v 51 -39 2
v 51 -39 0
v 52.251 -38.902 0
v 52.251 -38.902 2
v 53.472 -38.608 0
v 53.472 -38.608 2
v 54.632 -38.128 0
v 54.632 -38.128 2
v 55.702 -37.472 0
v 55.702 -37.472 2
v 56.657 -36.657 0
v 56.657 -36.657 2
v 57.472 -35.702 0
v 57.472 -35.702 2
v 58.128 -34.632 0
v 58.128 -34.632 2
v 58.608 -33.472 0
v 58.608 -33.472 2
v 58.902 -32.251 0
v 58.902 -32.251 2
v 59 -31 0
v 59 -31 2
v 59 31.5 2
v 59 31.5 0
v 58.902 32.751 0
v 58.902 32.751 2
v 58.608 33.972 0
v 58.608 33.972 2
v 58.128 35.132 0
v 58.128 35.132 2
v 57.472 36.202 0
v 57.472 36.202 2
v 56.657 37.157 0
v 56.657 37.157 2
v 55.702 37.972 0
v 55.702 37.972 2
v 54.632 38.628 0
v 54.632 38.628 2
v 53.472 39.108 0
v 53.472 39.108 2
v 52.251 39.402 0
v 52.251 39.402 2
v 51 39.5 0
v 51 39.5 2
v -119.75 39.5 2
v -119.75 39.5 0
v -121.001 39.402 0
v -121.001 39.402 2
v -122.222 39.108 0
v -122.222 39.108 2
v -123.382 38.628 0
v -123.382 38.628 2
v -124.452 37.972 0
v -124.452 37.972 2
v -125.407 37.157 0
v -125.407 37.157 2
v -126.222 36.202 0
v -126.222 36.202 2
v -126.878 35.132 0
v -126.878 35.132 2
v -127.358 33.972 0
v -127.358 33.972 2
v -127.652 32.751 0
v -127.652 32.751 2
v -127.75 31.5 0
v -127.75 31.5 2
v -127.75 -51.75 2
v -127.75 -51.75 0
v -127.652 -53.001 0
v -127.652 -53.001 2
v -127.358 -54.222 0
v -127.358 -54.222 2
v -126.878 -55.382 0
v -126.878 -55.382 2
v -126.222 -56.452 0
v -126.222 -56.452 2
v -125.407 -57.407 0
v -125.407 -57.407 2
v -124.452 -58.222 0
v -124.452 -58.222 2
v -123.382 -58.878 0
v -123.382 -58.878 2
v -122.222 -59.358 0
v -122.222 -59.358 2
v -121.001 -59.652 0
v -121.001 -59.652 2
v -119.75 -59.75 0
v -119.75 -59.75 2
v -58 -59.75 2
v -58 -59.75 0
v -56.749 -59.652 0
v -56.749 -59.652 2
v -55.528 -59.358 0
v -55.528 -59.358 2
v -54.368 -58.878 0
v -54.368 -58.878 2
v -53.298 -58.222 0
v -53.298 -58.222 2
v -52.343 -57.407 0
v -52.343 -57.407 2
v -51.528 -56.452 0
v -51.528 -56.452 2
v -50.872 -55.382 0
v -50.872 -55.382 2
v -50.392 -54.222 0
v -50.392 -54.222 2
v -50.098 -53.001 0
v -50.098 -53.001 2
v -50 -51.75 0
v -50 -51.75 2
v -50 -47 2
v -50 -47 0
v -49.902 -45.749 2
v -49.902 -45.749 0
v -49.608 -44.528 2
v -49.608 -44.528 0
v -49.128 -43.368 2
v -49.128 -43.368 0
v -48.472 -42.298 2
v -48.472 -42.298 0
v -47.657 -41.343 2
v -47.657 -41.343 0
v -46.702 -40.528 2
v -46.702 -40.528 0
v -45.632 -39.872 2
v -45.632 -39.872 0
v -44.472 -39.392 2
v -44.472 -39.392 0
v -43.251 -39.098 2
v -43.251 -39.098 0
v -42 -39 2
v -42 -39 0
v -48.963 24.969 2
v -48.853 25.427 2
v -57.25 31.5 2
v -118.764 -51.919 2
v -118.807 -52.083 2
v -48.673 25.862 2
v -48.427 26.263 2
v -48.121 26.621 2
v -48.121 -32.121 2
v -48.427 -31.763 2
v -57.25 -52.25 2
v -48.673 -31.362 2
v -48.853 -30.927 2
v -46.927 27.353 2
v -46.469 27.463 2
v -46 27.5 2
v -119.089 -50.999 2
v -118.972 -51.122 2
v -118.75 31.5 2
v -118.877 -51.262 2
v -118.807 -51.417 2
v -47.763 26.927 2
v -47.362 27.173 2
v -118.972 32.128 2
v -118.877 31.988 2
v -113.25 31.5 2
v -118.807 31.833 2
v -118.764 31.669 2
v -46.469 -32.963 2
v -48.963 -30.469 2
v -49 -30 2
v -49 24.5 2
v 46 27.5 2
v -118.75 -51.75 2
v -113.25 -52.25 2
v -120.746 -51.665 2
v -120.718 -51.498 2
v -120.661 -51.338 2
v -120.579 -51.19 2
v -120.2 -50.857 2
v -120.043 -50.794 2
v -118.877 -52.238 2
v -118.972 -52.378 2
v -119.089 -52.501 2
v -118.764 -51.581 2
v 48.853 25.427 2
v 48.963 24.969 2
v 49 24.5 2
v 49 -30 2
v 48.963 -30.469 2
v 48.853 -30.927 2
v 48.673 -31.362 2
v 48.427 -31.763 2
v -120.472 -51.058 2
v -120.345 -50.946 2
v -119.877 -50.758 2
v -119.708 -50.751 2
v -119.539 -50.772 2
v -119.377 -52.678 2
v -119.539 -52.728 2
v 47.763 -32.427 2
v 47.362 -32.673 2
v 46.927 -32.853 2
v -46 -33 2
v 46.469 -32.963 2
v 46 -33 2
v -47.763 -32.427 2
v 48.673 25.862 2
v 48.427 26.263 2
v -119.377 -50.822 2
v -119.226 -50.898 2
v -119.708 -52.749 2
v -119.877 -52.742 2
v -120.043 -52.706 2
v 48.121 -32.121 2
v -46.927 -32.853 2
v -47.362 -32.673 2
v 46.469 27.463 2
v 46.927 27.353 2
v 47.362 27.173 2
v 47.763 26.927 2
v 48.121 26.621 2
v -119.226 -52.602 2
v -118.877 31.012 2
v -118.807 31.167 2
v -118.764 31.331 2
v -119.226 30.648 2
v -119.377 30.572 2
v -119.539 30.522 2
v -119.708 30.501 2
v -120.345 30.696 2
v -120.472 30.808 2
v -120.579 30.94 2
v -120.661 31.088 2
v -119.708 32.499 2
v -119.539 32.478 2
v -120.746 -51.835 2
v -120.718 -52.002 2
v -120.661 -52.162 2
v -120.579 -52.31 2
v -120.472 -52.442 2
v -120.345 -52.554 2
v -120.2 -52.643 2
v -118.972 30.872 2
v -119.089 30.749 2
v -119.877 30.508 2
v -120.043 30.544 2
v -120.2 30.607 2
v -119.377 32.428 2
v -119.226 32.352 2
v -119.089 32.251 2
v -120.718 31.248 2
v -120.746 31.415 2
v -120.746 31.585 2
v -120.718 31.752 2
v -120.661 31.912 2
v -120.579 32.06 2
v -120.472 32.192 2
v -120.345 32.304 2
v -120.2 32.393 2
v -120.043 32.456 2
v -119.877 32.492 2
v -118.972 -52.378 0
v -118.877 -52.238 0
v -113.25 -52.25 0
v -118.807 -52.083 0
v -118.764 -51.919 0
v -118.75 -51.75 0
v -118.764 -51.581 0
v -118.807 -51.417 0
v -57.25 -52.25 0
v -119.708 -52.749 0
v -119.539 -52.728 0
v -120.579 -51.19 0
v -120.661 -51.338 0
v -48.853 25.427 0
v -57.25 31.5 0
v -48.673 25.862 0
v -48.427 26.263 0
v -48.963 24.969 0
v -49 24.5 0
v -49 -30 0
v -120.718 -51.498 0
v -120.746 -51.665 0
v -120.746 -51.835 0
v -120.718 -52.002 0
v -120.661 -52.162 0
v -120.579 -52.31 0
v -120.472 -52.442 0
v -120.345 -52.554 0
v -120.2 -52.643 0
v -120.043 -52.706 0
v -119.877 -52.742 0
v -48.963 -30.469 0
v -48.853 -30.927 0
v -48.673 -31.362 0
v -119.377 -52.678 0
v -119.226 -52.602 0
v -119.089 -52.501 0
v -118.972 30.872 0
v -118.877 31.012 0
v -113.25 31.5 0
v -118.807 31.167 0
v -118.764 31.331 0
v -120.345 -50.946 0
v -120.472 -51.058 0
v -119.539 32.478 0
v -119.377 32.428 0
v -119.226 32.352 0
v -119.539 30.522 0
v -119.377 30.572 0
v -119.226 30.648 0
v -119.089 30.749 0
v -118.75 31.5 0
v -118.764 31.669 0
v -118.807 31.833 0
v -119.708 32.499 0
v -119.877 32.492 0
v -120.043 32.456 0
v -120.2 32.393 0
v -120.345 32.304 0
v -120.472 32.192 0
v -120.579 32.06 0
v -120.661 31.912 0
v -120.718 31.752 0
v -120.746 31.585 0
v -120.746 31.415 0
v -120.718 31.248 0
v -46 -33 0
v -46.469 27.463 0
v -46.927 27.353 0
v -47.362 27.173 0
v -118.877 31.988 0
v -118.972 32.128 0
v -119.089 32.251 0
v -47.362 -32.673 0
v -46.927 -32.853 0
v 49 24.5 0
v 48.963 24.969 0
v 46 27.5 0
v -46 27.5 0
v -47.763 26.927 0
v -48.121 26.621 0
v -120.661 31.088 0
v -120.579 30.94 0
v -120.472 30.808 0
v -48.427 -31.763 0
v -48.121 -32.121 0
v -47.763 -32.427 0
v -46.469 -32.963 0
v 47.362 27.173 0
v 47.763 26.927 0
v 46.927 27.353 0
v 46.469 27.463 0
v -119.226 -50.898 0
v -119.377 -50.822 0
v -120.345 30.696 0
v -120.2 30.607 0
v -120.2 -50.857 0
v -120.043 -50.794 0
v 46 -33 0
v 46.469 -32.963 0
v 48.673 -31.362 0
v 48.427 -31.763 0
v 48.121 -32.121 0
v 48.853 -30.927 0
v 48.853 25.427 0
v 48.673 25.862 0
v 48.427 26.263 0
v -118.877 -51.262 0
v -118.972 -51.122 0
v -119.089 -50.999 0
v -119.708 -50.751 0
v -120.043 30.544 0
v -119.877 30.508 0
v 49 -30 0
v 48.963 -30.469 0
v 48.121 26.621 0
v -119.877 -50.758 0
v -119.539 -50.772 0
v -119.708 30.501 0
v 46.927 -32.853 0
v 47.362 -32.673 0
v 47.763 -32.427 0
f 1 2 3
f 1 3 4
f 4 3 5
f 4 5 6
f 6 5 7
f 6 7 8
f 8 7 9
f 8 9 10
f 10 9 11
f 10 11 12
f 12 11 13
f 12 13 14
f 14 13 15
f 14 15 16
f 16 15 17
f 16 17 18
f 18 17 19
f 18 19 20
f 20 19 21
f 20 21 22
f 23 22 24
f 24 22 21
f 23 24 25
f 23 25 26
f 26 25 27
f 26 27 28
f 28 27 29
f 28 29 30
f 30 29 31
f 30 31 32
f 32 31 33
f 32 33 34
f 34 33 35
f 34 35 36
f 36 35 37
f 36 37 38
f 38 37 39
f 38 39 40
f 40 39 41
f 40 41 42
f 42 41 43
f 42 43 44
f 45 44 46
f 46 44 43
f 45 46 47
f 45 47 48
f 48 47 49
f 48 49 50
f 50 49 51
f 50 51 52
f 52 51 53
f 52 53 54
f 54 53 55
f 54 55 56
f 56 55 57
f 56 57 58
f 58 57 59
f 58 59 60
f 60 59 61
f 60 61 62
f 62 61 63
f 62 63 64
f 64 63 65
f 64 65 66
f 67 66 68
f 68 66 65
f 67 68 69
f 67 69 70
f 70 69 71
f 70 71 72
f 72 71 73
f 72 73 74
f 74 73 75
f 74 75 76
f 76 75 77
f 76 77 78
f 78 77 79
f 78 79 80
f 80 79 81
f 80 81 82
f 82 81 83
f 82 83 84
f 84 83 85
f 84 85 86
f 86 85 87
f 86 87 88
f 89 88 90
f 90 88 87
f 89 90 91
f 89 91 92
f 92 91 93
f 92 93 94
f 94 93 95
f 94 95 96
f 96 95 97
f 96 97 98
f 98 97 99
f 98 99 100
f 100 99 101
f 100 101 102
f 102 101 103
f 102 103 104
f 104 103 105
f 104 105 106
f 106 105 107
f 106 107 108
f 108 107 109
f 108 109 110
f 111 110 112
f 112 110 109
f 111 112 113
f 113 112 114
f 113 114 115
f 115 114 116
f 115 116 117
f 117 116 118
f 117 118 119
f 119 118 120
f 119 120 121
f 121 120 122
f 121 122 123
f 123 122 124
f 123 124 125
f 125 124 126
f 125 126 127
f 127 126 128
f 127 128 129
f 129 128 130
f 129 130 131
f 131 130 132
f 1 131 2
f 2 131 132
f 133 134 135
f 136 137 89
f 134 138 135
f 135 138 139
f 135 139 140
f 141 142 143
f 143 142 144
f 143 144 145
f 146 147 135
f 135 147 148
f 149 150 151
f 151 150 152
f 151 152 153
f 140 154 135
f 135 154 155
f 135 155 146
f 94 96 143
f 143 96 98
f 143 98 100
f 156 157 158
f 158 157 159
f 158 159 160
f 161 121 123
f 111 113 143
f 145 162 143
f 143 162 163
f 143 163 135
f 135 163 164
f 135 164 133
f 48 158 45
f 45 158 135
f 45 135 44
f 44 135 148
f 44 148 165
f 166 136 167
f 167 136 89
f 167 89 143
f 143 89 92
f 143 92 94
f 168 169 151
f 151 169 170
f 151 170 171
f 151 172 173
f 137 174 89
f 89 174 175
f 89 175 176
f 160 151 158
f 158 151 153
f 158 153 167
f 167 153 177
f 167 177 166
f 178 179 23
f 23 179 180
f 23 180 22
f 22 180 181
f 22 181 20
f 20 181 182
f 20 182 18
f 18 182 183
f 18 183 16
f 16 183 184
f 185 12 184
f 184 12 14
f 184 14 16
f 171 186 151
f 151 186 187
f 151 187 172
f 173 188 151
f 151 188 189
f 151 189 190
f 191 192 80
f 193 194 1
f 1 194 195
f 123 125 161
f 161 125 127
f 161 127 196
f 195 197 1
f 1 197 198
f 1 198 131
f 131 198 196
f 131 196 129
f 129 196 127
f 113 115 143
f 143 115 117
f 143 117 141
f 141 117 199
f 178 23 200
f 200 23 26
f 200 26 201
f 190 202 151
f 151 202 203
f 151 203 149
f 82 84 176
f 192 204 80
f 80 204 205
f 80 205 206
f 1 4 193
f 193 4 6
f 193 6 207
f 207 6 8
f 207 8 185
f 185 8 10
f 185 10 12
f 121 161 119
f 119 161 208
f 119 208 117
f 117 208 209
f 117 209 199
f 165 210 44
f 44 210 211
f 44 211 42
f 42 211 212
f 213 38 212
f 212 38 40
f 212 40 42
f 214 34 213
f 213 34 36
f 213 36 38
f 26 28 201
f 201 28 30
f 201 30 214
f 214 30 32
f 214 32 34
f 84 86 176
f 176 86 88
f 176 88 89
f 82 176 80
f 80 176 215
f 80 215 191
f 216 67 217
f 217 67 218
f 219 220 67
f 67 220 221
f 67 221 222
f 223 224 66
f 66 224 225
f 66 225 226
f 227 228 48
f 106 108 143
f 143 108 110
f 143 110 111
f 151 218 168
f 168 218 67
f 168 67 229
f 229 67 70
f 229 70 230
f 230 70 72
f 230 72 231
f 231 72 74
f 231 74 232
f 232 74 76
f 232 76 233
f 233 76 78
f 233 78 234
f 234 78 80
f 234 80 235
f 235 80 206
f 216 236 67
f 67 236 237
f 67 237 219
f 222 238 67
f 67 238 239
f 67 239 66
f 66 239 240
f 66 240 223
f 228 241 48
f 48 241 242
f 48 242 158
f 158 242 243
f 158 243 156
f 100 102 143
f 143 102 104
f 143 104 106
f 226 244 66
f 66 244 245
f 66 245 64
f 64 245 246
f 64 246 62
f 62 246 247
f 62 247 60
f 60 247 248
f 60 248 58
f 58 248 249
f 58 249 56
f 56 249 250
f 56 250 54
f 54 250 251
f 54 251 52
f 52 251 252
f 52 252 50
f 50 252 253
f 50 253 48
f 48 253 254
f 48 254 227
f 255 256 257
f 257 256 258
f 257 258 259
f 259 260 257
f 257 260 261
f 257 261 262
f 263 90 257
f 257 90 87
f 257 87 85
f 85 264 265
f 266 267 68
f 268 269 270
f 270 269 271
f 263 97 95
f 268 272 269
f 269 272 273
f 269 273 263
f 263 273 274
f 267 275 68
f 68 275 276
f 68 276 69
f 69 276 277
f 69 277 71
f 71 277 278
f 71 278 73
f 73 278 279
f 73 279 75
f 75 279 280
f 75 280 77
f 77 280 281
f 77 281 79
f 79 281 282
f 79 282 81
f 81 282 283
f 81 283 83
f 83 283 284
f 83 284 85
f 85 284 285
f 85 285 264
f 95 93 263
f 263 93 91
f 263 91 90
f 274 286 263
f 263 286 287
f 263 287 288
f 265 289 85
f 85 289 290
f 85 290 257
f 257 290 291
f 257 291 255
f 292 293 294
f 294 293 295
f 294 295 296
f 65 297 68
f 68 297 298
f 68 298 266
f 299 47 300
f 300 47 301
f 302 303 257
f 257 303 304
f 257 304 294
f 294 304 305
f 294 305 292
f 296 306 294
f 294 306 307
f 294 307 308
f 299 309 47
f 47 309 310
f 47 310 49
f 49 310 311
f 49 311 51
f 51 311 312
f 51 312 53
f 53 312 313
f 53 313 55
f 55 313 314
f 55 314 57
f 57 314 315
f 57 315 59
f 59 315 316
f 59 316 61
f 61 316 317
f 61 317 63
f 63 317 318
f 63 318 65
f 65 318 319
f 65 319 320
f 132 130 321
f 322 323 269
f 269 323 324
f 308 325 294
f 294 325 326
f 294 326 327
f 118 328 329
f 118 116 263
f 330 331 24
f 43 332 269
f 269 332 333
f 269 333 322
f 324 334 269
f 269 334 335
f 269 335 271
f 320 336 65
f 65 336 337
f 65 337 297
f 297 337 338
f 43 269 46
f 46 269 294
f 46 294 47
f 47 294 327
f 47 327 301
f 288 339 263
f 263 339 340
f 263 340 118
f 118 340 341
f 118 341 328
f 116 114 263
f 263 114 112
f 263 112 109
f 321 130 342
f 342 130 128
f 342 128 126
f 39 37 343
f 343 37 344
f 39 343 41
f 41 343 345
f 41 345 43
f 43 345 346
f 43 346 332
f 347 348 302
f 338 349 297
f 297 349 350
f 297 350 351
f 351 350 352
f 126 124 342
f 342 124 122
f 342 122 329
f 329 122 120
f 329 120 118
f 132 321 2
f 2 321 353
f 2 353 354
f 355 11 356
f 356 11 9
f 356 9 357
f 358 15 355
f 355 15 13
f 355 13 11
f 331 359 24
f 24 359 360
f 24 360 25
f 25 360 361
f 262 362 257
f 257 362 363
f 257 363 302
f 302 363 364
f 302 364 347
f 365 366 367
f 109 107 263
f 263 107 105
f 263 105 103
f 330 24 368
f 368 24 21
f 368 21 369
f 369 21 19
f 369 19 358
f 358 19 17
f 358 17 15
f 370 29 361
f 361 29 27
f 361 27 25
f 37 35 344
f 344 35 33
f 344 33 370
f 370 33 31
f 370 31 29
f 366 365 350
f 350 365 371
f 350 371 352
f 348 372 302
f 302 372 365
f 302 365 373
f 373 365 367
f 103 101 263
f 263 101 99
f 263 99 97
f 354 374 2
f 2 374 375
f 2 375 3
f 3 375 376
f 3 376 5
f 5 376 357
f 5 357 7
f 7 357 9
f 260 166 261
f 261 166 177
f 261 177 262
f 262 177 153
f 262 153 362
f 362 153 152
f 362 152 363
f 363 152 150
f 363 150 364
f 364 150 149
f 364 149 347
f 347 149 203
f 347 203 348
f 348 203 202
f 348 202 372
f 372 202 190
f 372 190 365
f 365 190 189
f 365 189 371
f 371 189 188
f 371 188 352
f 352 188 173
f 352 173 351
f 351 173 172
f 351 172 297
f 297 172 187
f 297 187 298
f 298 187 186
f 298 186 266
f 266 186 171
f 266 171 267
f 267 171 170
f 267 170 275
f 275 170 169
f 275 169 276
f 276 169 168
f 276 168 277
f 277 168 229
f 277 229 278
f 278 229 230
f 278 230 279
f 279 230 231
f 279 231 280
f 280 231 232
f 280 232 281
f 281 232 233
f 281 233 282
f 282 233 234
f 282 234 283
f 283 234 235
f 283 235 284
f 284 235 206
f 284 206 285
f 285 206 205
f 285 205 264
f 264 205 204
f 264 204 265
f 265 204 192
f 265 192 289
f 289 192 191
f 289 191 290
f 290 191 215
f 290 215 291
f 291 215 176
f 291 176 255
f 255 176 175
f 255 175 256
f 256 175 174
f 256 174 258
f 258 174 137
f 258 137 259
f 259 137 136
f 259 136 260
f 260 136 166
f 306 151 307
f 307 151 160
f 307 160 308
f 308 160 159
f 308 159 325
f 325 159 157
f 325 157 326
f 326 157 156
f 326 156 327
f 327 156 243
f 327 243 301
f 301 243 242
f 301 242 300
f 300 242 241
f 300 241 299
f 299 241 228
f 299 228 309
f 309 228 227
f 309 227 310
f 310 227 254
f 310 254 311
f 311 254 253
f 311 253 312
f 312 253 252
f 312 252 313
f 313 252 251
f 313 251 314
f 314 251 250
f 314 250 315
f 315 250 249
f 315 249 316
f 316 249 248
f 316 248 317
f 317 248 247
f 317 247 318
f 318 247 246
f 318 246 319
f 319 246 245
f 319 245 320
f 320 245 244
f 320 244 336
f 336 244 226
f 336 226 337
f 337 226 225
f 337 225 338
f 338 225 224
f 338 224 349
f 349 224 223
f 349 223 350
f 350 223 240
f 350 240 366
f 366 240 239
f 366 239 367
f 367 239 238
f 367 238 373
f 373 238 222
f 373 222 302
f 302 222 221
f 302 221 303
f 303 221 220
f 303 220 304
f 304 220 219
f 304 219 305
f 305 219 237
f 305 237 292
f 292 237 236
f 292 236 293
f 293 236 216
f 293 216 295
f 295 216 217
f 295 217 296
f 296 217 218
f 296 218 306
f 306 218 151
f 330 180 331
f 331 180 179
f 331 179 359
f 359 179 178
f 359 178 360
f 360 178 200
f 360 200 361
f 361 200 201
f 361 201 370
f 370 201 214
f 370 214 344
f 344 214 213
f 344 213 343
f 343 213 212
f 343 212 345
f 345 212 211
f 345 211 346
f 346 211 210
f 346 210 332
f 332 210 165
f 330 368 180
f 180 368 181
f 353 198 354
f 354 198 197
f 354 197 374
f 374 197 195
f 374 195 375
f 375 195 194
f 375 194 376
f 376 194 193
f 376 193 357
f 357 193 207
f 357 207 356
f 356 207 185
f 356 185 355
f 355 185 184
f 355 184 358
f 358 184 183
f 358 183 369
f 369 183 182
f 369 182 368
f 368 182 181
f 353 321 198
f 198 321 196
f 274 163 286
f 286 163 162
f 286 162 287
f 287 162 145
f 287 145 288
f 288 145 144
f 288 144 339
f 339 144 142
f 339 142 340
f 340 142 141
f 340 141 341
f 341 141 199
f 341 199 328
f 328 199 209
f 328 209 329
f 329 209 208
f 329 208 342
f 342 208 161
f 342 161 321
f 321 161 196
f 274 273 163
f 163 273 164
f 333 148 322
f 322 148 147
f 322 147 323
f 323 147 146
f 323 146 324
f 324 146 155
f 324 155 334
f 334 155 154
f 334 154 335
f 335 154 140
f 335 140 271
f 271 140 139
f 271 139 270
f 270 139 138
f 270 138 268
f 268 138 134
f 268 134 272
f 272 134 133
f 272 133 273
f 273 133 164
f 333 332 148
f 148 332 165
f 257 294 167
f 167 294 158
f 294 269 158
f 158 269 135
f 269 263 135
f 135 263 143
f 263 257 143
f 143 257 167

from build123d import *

# Parameters (mm, degrees)
MAIN_EXTRUDE_DEPTH      = 2
SCREWHOLES_DEPTH        = 142.046534874
SCREWHOLES_DEPTH_BACK   = 142.046534874
SKETCH2_R               = 1
CUT_EXTRUDE2_DEPTH      = 142.046534874
CUT_EXTRUDE2_DEPTH_BACK = 142.046534874
SKETCH3_W               = 56
SKETCH3_H               = 83.75


with BuildPart() as part:
    # Sketch1 → Main extrude (new body)
    with BuildSketch(Plane.XY):
        with BuildLine():
            Line((-50, -51.75), (-50, -47))
            ThreePointArc((-50, -47), (-47.656854249, -41.343145751), (-42, -39))
            Line((-42, -39), (51, -39))
            ThreePointArc((51, -39), (56.656854249, -36.656854249), (59, -31))
            Line((59, -31), (59, 31.5))
            ThreePointArc((59, 31.5), (56.656854249, 37.156854249), (51, 39.5))
            Line((51, 39.5), (-119.75, 39.5))
            ThreePointArc((-119.75, 39.5), (-125.406854249, 37.156854249), (-127.75, 31.5))
            Line((-127.75, 31.5), (-127.75, -51.75))
            ThreePointArc((-127.75, -51.75), (-125.406854249, -57.406854249), (-119.75, -59.75))
            Line((-119.75, -59.75), (-58, -59.75))
            ThreePointArc((-58, -59.75), (-52.343145751, -57.406854249), (-50, -51.75))
        make_face()
    extrude(amount=MAIN_EXTRUDE_DEPTH)

    # Sketch2 → Screwholes (cut, two sides: drawn at the far end of the back side and taken through both)
    with BuildSketch(Plane.XY.offset(2).offset(-SCREWHOLES_DEPTH_BACK)):
        with Locations((-119.75, 31.5)):
            Circle(SKETCH2_R)
        with Locations((-119.75, -51.75)):
            Circle(SKETCH2_R)
    extrude(amount=SCREWHOLES_DEPTH + SCREWHOLES_DEPTH_BACK, mode=Mode.SUBTRACT)

    # Sketch3 → Cut-Extrude2 (cut, two sides: drawn at the far end of the back side and taken through both)
    with BuildSketch(Plane.XY.offset(2).offset(-CUT_EXTRUDE2_DEPTH_BACK)):
        with Locations((-85.25, -10.375)):
            Rectangle(SKETCH3_W, SKETCH3_H)
        with BuildLine():
            Line((-46, 27.5), (46, 27.5))
            ThreePointArc((46, 27.5), (48.121320344, 26.621320344), (49, 24.5))
            Line((49, 24.5), (49, -30))
            ThreePointArc((49, -30), (48.121320344, -32.121320344), (46, -33))
            Line((46, -33), (-46, -33))
            ThreePointArc((-46, -33), (-48.121320344, -32.121320344), (-49, -30))
            Line((-49, -30), (-49, 24.5))
            ThreePointArc((-49, 24.5), (-48.121320344, 26.621320344), (-46, 27.5))
        make_face()
    extrude(amount=CUT_EXTRUDE2_DEPTH + CUT_EXTRUDE2_DEPTH_BACK, mode=Mode.SUBTRACT)


solid = part.part
